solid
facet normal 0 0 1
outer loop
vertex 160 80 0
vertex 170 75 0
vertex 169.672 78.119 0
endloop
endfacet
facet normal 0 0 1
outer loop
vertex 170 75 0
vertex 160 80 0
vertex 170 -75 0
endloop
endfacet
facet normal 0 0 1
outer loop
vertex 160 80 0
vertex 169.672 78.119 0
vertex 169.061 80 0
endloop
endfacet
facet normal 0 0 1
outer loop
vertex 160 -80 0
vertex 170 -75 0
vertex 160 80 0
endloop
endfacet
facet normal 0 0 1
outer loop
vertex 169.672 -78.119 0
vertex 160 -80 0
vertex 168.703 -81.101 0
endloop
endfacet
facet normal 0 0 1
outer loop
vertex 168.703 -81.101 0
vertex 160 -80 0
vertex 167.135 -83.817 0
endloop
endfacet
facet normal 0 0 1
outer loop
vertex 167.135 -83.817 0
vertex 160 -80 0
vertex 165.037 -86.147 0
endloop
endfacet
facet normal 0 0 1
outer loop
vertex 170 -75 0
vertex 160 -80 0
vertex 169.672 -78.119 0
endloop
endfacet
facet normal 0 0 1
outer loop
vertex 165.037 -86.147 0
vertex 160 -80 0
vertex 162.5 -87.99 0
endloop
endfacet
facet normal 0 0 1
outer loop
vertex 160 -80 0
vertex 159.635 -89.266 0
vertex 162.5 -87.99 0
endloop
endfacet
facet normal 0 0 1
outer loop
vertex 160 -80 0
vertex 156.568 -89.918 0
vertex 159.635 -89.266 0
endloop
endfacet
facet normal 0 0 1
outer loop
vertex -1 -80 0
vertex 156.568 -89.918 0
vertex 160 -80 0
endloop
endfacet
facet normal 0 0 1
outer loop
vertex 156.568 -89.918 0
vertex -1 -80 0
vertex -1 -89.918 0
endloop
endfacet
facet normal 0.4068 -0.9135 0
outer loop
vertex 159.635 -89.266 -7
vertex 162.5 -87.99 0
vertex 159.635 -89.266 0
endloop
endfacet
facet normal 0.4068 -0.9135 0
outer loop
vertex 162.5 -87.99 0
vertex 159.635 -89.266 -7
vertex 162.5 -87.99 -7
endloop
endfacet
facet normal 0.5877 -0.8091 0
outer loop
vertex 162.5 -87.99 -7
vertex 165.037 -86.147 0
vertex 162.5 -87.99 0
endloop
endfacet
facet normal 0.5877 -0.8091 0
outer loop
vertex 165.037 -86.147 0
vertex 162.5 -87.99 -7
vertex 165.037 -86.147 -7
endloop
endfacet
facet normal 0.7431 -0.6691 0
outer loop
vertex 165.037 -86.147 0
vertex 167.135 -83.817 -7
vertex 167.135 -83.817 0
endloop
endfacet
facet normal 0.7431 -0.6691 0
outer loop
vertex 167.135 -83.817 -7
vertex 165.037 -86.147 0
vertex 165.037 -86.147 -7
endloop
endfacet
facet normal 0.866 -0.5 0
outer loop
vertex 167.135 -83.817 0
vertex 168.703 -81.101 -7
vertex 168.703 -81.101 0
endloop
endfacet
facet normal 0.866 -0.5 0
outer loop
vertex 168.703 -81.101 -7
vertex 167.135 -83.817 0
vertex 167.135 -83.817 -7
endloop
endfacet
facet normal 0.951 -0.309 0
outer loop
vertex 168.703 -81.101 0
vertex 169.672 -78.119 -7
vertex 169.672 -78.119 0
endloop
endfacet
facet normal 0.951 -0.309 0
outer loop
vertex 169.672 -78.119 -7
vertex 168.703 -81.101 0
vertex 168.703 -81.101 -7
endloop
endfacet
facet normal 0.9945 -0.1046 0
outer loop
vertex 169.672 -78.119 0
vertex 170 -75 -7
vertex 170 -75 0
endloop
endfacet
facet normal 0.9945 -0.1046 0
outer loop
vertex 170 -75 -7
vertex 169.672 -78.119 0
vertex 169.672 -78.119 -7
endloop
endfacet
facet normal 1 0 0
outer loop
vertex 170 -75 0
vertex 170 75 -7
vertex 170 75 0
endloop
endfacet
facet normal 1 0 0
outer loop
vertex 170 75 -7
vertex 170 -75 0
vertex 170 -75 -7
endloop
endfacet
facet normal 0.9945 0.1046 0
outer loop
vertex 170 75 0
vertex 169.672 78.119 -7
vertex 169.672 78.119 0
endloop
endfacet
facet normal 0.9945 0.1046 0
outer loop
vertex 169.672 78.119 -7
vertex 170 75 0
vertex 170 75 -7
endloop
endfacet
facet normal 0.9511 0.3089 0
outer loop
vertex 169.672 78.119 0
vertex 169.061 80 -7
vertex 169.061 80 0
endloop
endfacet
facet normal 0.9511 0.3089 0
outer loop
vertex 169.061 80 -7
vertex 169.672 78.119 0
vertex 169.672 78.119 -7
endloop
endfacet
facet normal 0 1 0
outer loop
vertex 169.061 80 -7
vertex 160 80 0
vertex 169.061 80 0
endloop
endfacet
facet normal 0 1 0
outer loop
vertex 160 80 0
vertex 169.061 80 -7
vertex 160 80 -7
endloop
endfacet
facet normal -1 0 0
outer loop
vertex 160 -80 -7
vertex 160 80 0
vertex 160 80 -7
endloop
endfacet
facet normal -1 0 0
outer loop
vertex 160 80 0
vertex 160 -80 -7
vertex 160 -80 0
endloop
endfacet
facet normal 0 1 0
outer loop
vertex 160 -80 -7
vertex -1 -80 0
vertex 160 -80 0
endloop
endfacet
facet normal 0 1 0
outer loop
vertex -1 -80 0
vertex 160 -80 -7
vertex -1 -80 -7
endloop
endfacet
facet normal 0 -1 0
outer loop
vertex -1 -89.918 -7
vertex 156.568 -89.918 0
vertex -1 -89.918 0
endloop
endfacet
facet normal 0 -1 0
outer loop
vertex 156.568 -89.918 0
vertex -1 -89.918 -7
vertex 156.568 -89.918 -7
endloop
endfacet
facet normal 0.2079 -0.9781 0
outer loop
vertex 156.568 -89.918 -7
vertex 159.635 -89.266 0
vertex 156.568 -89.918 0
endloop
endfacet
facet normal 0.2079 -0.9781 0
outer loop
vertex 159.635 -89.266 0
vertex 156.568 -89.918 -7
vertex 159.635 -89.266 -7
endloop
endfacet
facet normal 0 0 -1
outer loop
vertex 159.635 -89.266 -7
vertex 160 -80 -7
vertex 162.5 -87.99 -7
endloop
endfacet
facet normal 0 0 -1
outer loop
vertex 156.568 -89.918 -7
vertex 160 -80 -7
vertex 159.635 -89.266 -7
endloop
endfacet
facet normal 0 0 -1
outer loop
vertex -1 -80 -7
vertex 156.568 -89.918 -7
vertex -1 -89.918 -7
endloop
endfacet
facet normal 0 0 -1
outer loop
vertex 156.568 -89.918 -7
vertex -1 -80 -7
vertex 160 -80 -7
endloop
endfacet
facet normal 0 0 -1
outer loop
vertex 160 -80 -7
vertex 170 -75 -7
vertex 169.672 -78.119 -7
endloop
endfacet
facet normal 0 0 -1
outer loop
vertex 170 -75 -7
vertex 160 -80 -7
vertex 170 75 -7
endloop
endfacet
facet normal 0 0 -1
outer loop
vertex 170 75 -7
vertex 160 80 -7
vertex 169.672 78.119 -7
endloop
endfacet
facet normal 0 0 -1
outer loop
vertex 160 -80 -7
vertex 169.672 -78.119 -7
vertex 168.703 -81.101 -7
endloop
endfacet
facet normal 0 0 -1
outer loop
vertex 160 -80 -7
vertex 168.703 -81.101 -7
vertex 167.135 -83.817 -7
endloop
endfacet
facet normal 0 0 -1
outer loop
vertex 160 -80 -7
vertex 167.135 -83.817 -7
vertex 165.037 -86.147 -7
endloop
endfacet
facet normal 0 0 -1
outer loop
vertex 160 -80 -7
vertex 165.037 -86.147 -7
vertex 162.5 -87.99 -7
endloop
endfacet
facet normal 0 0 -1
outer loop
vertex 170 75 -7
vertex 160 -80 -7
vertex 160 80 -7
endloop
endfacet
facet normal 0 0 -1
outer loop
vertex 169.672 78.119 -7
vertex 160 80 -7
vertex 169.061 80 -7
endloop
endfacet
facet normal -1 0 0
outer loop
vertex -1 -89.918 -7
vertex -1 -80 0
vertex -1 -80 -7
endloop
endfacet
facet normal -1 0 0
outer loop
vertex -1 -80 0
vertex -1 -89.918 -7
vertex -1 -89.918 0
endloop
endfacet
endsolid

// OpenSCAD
// file: ../../lib/project/util.scad
// lib/project/util.scad

module rounded_rect_2d(size = [10, 10], r = 2) {
  x = size[0];
  y = size[1];
  rr = min(r, min(x, y) / 2);

  hull() {
    for (sx = [-1, 1], sy = [-1, 1]) {
      translate([sx * (x / 2 - rr), sy * (y / 2 - rr)])
        circle(r = rr);
    }
  }
}
// file: ../../lib/project/params.scad
// lib/project/params.scad
// Shared project parameters for the final tray and all fit-test models.

debug = false;

// Main tray footprint.
tray_corner_r = 15;

// Top tray shell.
tray_floor_t = 2.4;
tray_wall_h = 9;
top_wall_w = 10;

// Underside support lip and rear support section.
support_lip_drop = 10;
support_lip_w = 10;
console_clear_w = 320;
side_lip_run = 170;
tray_w = console_clear_w + 2 * support_lip_w;
tray_d = side_lip_run + support_lip_w;
rear_gap_w = 28;
rear_tongue_w = 170;
rear_tongue_depth = 34;
rear_tongue_t = 1.8;

// Cup holder location and plug geometry.
cup_spacing = 135;
cup_y_from_front = 72;
plug_top_d = 90;
plug_bottom_d = 78;
plug_h = 73;
plug_clearance_z = 0;
cup_rim_w = 7.5;
cup_rim_h = 5;

// Fit-test defaults.
test_plug_top_ds = [84, 85, 86];
test_spacing_values = [116, 118, 120];
test_lip_drop_values = [8, 10, 12];
test_rear_tongue_ts = [1.4, 1.8, 2.2];
test_frame_wall_w = 12;
test_front_zone_depth = 100;
test_rear_zone_depth = 56;
test_gap_section_w = 140;
test_coupon_spacing = 18;
// main file
use <../../lib/project/console_tray.scad>;
include <../../lib/project/params.scad>;

// Print one half, then mirror it in the slicer or by setting mirror_part = true
// for the matching opposite side.
mirror_part = false;

half_perimeter_lip_fit_variant(
  tray_w = tray_w,
  tray_d = tray_d,
  tray_corner_r = tray_corner_r,
  support_lip_drop = support_lip_drop,
  support_lip_w = support_lip_w,
  rear_gap_w = rear_gap_w,
  rear_tongue_w = rear_tongue_w,
  mirror_x = mirror_part
);
